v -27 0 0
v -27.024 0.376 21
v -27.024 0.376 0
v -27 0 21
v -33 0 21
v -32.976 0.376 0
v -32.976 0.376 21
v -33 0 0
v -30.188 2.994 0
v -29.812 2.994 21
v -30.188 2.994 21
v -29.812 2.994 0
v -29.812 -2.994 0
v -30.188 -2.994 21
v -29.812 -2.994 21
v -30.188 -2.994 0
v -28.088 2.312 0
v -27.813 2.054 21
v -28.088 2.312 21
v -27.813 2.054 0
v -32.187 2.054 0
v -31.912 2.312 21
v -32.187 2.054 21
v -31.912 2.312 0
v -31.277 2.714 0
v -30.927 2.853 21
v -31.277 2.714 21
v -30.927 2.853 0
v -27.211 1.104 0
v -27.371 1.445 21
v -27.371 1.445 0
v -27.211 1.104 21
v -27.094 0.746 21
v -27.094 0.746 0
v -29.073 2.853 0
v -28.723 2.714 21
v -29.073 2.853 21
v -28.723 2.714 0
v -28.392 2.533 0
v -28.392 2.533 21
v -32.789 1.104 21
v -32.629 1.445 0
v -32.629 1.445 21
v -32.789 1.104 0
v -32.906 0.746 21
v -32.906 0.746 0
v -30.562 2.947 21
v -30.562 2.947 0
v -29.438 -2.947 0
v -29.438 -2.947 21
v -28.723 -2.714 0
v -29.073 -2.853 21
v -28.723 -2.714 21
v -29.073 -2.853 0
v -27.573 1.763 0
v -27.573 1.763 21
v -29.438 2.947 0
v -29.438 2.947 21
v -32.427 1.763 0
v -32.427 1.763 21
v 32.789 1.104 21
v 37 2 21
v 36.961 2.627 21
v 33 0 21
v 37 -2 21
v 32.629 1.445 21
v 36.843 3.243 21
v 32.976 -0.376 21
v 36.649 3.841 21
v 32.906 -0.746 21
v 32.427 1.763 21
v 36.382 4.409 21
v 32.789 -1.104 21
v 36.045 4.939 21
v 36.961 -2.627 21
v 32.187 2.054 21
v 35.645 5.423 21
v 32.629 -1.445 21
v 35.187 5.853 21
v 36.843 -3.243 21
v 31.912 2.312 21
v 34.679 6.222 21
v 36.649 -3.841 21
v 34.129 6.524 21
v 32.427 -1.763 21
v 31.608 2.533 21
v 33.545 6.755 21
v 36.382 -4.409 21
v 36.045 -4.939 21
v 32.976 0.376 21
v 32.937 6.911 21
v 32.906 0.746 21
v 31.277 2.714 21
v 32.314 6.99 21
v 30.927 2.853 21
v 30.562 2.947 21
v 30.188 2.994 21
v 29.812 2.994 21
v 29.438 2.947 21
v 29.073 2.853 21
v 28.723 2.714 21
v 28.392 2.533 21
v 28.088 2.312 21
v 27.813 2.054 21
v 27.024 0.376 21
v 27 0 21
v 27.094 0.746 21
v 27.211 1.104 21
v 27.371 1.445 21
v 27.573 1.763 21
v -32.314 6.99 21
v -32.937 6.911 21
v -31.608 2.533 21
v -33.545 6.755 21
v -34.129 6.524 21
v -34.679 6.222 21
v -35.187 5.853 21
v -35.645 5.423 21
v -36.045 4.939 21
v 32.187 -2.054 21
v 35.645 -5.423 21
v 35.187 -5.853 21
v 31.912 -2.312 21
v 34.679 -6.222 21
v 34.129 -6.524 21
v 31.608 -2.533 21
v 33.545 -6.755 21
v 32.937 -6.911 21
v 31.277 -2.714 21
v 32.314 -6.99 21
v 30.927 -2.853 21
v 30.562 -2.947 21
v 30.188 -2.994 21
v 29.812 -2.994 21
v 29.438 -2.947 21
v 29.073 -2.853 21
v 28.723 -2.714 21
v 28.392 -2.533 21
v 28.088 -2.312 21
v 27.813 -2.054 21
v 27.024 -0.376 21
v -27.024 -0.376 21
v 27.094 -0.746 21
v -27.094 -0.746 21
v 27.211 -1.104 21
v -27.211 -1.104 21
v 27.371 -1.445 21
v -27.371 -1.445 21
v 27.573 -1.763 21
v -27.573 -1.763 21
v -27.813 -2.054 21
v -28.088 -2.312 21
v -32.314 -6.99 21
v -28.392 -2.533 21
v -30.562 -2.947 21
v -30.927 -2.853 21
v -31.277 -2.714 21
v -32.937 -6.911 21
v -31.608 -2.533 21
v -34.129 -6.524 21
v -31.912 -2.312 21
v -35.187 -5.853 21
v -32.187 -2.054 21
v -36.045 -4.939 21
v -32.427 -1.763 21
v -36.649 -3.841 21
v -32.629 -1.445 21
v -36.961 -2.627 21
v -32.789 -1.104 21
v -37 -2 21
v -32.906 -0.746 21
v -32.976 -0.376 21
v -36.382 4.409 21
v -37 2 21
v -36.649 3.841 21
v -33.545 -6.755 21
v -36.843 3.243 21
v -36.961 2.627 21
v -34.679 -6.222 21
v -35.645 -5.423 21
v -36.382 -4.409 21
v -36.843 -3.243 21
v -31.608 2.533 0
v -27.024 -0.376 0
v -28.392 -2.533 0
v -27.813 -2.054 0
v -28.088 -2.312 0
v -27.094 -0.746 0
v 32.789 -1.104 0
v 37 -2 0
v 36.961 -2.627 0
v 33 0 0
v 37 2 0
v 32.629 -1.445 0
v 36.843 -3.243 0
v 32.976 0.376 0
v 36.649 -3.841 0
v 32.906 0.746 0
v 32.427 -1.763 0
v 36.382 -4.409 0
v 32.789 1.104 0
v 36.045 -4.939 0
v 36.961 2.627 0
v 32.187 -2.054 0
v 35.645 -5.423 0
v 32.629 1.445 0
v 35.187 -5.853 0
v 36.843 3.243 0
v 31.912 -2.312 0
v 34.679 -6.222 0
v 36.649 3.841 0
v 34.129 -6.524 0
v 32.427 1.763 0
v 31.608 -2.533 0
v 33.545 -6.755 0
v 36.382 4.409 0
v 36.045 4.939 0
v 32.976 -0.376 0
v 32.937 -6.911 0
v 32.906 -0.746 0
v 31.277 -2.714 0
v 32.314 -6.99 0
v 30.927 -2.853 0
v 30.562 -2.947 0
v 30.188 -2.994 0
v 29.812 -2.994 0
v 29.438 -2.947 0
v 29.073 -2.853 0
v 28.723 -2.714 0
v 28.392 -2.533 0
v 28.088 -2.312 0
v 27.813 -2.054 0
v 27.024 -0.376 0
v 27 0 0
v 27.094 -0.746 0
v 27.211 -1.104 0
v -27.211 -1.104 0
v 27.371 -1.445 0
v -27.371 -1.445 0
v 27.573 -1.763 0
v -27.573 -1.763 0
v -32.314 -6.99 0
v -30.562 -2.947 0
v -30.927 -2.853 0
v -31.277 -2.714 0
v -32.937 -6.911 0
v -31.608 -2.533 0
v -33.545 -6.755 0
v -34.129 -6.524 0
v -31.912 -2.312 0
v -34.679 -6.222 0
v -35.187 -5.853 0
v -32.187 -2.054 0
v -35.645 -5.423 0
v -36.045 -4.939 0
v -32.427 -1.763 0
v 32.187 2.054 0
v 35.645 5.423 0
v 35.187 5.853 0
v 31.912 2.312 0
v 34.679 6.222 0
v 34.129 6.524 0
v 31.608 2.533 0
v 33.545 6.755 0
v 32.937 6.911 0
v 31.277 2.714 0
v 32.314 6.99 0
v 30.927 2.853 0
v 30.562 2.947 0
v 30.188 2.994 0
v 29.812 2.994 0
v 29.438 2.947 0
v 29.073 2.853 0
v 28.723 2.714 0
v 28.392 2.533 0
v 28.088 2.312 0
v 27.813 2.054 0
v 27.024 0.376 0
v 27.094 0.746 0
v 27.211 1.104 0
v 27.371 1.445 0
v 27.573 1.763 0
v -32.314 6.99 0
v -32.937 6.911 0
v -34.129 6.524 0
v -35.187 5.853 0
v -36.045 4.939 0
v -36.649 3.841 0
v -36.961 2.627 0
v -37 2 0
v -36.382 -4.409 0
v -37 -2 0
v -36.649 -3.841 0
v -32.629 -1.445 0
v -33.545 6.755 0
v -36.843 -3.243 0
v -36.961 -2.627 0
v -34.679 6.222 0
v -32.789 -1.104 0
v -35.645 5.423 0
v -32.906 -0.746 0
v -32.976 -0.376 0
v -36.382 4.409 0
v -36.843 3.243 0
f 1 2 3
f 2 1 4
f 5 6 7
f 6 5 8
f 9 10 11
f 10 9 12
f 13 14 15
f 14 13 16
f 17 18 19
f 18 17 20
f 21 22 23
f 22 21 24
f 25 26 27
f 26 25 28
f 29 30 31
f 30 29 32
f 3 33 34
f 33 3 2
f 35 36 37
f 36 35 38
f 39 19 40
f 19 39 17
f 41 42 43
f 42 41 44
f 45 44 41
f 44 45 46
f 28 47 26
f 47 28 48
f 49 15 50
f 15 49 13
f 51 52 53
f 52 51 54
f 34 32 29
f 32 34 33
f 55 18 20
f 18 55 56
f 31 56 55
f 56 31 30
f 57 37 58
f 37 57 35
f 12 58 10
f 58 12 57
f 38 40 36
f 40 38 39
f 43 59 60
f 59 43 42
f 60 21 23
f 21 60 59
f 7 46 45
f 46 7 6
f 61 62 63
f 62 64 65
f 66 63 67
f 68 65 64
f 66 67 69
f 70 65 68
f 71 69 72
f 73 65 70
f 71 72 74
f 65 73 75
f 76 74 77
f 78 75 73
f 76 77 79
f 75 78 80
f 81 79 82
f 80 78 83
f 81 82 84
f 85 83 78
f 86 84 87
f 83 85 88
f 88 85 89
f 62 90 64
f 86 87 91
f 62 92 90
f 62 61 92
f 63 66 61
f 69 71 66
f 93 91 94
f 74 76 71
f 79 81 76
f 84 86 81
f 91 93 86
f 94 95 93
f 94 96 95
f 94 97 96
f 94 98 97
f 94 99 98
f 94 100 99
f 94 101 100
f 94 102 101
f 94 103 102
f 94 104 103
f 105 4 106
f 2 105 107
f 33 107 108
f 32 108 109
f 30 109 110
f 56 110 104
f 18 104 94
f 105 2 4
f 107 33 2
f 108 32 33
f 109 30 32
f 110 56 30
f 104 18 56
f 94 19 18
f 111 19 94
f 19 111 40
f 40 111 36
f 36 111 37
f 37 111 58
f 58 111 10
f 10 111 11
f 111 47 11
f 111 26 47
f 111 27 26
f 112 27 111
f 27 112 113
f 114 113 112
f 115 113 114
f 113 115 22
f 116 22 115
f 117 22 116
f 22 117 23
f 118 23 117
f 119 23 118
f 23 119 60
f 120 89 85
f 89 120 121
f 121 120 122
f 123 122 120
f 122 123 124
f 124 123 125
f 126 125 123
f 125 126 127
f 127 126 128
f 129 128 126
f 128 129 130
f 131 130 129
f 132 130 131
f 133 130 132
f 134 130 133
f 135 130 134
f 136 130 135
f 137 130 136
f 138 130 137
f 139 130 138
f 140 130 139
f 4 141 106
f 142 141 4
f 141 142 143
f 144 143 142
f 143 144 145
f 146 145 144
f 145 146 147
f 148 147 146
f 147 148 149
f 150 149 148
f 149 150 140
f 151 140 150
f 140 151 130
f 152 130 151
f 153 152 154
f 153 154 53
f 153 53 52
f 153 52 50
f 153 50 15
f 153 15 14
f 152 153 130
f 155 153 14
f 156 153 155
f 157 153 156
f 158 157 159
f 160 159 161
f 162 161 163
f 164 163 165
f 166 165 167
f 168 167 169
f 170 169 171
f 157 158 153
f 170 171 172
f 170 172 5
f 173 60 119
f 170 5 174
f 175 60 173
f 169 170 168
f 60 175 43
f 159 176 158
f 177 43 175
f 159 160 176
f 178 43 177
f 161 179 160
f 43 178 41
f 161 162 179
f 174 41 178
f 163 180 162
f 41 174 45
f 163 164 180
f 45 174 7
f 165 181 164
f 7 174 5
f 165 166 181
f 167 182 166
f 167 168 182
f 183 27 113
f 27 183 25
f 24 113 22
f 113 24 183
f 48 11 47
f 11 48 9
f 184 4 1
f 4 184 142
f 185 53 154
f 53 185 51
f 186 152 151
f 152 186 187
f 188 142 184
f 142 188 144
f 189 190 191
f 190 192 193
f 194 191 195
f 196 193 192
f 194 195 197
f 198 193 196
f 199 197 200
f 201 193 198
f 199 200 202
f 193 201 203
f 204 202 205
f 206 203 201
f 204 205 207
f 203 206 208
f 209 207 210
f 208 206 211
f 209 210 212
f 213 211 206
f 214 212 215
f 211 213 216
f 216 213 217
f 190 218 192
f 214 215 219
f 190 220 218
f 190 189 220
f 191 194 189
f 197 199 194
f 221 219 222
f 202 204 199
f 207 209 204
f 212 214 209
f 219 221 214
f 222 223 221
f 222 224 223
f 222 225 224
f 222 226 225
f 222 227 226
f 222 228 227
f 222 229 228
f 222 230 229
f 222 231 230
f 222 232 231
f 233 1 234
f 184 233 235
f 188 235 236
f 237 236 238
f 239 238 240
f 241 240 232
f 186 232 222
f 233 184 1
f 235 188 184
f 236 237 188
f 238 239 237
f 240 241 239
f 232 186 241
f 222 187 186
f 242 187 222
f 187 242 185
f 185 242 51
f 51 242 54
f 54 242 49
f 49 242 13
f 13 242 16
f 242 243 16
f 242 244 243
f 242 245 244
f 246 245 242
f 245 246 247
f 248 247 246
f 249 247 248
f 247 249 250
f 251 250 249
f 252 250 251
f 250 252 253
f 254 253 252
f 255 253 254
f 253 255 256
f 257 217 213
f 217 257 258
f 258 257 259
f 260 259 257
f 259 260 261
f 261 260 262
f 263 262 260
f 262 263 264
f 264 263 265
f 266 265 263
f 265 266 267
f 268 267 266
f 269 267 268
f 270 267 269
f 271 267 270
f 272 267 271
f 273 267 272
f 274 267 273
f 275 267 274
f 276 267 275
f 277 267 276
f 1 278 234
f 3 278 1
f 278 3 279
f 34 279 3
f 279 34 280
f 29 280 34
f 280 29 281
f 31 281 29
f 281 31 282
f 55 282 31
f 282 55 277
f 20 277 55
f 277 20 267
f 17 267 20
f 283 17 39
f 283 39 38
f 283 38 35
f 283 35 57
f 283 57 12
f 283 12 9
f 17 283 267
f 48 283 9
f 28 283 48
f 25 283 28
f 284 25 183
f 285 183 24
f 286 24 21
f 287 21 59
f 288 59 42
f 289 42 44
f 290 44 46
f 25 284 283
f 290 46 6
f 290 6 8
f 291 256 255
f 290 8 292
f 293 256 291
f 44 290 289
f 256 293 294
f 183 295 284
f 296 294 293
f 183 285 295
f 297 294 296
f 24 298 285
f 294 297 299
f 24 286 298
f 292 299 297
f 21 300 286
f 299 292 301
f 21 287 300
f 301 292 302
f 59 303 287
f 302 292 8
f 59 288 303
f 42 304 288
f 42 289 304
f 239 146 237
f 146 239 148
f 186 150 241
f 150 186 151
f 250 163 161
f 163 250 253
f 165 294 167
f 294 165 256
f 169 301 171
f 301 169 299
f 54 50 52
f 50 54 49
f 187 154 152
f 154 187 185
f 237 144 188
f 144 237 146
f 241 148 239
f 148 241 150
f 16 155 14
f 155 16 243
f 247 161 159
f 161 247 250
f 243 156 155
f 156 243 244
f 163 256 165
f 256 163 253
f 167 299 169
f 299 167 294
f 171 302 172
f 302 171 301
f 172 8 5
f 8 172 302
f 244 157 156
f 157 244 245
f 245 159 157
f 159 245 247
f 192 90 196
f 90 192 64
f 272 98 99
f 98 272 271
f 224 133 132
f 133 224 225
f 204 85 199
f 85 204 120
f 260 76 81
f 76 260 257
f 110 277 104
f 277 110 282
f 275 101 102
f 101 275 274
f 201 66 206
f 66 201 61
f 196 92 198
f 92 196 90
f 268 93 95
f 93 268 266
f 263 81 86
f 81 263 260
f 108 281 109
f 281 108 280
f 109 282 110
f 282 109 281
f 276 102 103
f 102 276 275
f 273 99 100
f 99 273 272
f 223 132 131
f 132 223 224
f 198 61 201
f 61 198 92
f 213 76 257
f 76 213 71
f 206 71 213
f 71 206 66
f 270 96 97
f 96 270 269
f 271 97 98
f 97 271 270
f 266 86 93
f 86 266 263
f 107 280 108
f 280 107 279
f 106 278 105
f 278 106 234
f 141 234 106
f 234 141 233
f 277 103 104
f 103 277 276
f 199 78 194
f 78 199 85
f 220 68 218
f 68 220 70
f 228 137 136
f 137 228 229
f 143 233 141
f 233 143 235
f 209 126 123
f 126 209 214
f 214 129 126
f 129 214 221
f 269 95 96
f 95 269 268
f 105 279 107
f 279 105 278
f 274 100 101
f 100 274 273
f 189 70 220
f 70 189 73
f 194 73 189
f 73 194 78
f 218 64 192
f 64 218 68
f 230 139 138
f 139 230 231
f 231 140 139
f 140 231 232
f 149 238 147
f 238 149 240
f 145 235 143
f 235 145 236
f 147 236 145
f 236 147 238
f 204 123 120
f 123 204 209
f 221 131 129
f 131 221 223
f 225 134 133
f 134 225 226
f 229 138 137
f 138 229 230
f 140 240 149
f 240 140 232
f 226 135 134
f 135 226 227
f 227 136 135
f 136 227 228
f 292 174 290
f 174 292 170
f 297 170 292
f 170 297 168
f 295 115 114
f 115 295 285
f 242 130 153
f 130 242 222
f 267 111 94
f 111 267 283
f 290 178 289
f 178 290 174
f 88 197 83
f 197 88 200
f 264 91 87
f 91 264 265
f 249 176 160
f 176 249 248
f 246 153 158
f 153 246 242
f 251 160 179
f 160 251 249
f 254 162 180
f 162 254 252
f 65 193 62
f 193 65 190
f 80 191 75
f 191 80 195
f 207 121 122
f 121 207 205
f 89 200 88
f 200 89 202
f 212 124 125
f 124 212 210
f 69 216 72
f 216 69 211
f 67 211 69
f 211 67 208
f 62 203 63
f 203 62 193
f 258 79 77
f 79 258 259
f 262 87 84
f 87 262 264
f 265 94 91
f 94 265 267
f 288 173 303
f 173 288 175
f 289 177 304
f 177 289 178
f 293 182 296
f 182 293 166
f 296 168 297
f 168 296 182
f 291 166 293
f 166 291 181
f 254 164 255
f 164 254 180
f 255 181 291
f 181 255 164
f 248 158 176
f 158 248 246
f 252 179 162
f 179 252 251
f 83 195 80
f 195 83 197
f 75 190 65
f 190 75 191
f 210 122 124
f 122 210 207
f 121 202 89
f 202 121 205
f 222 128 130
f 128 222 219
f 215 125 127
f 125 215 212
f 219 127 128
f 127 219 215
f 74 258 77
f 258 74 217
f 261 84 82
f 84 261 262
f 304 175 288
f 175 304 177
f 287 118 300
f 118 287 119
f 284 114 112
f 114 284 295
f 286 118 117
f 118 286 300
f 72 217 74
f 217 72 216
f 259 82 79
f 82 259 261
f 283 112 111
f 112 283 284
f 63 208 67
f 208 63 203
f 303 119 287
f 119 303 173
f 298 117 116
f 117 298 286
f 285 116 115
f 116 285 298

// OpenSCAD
$fn = 50;


difference() {
	union() {
		hull() {
			translate(v = [-32.0000000000, 2.0000000000, 0]) {
				cylinder(h = 21, r = 5);
			}
			translate(v = [32.0000000000, 2.0000000000, 0]) {
				cylinder(h = 21, r = 5);
			}
			translate(v = [-32.0000000000, -2.0000000000, 0]) {
				cylinder(h = 21, r = 5);
			}
			translate(v = [32.0000000000, -2.0000000000, 0]) {
				cylinder(h = 21, r = 5);
			}
		}
	}
	union() {
		translate(v = [-30.0000000000, 0.0000000000, 0]) {
			cylinder(h = 21, r = 3.0000000000);
		}
		translate(v = [30.0000000000, 0.0000000000, 0]) {
			cylinder(h = 21, r = 3.0000000000);
		}
		translate(v = [-30.0000000000, 0.0000000000, 0]) {
			cylinder(h = 21, r = 1.5000000000);
		}
		translate(v = [30.0000000000, 0.0000000000, 0]) {
			cylinder(h = 21, r = 1.5000000000);
		}
		translate(v = [-30.0000000000, 0.0000000000, 0]) {
			cylinder(h = 21, r = 1.5000000000);
		}
		translate(v = [30.0000000000, 0.0000000000, 0]) {
			cylinder(h = 21, r = 1.5000000000);
		}
		translate(v = [-30.0000000000, 0.0000000000, 0]) {
			cylinder(h = 21, r = 1.5000000000);
		}
		translate(v = [30.0000000000, 0.0000000000, 0]) {
			cylinder(h = 21, r = 1.5000000000);
		}
	}
}
